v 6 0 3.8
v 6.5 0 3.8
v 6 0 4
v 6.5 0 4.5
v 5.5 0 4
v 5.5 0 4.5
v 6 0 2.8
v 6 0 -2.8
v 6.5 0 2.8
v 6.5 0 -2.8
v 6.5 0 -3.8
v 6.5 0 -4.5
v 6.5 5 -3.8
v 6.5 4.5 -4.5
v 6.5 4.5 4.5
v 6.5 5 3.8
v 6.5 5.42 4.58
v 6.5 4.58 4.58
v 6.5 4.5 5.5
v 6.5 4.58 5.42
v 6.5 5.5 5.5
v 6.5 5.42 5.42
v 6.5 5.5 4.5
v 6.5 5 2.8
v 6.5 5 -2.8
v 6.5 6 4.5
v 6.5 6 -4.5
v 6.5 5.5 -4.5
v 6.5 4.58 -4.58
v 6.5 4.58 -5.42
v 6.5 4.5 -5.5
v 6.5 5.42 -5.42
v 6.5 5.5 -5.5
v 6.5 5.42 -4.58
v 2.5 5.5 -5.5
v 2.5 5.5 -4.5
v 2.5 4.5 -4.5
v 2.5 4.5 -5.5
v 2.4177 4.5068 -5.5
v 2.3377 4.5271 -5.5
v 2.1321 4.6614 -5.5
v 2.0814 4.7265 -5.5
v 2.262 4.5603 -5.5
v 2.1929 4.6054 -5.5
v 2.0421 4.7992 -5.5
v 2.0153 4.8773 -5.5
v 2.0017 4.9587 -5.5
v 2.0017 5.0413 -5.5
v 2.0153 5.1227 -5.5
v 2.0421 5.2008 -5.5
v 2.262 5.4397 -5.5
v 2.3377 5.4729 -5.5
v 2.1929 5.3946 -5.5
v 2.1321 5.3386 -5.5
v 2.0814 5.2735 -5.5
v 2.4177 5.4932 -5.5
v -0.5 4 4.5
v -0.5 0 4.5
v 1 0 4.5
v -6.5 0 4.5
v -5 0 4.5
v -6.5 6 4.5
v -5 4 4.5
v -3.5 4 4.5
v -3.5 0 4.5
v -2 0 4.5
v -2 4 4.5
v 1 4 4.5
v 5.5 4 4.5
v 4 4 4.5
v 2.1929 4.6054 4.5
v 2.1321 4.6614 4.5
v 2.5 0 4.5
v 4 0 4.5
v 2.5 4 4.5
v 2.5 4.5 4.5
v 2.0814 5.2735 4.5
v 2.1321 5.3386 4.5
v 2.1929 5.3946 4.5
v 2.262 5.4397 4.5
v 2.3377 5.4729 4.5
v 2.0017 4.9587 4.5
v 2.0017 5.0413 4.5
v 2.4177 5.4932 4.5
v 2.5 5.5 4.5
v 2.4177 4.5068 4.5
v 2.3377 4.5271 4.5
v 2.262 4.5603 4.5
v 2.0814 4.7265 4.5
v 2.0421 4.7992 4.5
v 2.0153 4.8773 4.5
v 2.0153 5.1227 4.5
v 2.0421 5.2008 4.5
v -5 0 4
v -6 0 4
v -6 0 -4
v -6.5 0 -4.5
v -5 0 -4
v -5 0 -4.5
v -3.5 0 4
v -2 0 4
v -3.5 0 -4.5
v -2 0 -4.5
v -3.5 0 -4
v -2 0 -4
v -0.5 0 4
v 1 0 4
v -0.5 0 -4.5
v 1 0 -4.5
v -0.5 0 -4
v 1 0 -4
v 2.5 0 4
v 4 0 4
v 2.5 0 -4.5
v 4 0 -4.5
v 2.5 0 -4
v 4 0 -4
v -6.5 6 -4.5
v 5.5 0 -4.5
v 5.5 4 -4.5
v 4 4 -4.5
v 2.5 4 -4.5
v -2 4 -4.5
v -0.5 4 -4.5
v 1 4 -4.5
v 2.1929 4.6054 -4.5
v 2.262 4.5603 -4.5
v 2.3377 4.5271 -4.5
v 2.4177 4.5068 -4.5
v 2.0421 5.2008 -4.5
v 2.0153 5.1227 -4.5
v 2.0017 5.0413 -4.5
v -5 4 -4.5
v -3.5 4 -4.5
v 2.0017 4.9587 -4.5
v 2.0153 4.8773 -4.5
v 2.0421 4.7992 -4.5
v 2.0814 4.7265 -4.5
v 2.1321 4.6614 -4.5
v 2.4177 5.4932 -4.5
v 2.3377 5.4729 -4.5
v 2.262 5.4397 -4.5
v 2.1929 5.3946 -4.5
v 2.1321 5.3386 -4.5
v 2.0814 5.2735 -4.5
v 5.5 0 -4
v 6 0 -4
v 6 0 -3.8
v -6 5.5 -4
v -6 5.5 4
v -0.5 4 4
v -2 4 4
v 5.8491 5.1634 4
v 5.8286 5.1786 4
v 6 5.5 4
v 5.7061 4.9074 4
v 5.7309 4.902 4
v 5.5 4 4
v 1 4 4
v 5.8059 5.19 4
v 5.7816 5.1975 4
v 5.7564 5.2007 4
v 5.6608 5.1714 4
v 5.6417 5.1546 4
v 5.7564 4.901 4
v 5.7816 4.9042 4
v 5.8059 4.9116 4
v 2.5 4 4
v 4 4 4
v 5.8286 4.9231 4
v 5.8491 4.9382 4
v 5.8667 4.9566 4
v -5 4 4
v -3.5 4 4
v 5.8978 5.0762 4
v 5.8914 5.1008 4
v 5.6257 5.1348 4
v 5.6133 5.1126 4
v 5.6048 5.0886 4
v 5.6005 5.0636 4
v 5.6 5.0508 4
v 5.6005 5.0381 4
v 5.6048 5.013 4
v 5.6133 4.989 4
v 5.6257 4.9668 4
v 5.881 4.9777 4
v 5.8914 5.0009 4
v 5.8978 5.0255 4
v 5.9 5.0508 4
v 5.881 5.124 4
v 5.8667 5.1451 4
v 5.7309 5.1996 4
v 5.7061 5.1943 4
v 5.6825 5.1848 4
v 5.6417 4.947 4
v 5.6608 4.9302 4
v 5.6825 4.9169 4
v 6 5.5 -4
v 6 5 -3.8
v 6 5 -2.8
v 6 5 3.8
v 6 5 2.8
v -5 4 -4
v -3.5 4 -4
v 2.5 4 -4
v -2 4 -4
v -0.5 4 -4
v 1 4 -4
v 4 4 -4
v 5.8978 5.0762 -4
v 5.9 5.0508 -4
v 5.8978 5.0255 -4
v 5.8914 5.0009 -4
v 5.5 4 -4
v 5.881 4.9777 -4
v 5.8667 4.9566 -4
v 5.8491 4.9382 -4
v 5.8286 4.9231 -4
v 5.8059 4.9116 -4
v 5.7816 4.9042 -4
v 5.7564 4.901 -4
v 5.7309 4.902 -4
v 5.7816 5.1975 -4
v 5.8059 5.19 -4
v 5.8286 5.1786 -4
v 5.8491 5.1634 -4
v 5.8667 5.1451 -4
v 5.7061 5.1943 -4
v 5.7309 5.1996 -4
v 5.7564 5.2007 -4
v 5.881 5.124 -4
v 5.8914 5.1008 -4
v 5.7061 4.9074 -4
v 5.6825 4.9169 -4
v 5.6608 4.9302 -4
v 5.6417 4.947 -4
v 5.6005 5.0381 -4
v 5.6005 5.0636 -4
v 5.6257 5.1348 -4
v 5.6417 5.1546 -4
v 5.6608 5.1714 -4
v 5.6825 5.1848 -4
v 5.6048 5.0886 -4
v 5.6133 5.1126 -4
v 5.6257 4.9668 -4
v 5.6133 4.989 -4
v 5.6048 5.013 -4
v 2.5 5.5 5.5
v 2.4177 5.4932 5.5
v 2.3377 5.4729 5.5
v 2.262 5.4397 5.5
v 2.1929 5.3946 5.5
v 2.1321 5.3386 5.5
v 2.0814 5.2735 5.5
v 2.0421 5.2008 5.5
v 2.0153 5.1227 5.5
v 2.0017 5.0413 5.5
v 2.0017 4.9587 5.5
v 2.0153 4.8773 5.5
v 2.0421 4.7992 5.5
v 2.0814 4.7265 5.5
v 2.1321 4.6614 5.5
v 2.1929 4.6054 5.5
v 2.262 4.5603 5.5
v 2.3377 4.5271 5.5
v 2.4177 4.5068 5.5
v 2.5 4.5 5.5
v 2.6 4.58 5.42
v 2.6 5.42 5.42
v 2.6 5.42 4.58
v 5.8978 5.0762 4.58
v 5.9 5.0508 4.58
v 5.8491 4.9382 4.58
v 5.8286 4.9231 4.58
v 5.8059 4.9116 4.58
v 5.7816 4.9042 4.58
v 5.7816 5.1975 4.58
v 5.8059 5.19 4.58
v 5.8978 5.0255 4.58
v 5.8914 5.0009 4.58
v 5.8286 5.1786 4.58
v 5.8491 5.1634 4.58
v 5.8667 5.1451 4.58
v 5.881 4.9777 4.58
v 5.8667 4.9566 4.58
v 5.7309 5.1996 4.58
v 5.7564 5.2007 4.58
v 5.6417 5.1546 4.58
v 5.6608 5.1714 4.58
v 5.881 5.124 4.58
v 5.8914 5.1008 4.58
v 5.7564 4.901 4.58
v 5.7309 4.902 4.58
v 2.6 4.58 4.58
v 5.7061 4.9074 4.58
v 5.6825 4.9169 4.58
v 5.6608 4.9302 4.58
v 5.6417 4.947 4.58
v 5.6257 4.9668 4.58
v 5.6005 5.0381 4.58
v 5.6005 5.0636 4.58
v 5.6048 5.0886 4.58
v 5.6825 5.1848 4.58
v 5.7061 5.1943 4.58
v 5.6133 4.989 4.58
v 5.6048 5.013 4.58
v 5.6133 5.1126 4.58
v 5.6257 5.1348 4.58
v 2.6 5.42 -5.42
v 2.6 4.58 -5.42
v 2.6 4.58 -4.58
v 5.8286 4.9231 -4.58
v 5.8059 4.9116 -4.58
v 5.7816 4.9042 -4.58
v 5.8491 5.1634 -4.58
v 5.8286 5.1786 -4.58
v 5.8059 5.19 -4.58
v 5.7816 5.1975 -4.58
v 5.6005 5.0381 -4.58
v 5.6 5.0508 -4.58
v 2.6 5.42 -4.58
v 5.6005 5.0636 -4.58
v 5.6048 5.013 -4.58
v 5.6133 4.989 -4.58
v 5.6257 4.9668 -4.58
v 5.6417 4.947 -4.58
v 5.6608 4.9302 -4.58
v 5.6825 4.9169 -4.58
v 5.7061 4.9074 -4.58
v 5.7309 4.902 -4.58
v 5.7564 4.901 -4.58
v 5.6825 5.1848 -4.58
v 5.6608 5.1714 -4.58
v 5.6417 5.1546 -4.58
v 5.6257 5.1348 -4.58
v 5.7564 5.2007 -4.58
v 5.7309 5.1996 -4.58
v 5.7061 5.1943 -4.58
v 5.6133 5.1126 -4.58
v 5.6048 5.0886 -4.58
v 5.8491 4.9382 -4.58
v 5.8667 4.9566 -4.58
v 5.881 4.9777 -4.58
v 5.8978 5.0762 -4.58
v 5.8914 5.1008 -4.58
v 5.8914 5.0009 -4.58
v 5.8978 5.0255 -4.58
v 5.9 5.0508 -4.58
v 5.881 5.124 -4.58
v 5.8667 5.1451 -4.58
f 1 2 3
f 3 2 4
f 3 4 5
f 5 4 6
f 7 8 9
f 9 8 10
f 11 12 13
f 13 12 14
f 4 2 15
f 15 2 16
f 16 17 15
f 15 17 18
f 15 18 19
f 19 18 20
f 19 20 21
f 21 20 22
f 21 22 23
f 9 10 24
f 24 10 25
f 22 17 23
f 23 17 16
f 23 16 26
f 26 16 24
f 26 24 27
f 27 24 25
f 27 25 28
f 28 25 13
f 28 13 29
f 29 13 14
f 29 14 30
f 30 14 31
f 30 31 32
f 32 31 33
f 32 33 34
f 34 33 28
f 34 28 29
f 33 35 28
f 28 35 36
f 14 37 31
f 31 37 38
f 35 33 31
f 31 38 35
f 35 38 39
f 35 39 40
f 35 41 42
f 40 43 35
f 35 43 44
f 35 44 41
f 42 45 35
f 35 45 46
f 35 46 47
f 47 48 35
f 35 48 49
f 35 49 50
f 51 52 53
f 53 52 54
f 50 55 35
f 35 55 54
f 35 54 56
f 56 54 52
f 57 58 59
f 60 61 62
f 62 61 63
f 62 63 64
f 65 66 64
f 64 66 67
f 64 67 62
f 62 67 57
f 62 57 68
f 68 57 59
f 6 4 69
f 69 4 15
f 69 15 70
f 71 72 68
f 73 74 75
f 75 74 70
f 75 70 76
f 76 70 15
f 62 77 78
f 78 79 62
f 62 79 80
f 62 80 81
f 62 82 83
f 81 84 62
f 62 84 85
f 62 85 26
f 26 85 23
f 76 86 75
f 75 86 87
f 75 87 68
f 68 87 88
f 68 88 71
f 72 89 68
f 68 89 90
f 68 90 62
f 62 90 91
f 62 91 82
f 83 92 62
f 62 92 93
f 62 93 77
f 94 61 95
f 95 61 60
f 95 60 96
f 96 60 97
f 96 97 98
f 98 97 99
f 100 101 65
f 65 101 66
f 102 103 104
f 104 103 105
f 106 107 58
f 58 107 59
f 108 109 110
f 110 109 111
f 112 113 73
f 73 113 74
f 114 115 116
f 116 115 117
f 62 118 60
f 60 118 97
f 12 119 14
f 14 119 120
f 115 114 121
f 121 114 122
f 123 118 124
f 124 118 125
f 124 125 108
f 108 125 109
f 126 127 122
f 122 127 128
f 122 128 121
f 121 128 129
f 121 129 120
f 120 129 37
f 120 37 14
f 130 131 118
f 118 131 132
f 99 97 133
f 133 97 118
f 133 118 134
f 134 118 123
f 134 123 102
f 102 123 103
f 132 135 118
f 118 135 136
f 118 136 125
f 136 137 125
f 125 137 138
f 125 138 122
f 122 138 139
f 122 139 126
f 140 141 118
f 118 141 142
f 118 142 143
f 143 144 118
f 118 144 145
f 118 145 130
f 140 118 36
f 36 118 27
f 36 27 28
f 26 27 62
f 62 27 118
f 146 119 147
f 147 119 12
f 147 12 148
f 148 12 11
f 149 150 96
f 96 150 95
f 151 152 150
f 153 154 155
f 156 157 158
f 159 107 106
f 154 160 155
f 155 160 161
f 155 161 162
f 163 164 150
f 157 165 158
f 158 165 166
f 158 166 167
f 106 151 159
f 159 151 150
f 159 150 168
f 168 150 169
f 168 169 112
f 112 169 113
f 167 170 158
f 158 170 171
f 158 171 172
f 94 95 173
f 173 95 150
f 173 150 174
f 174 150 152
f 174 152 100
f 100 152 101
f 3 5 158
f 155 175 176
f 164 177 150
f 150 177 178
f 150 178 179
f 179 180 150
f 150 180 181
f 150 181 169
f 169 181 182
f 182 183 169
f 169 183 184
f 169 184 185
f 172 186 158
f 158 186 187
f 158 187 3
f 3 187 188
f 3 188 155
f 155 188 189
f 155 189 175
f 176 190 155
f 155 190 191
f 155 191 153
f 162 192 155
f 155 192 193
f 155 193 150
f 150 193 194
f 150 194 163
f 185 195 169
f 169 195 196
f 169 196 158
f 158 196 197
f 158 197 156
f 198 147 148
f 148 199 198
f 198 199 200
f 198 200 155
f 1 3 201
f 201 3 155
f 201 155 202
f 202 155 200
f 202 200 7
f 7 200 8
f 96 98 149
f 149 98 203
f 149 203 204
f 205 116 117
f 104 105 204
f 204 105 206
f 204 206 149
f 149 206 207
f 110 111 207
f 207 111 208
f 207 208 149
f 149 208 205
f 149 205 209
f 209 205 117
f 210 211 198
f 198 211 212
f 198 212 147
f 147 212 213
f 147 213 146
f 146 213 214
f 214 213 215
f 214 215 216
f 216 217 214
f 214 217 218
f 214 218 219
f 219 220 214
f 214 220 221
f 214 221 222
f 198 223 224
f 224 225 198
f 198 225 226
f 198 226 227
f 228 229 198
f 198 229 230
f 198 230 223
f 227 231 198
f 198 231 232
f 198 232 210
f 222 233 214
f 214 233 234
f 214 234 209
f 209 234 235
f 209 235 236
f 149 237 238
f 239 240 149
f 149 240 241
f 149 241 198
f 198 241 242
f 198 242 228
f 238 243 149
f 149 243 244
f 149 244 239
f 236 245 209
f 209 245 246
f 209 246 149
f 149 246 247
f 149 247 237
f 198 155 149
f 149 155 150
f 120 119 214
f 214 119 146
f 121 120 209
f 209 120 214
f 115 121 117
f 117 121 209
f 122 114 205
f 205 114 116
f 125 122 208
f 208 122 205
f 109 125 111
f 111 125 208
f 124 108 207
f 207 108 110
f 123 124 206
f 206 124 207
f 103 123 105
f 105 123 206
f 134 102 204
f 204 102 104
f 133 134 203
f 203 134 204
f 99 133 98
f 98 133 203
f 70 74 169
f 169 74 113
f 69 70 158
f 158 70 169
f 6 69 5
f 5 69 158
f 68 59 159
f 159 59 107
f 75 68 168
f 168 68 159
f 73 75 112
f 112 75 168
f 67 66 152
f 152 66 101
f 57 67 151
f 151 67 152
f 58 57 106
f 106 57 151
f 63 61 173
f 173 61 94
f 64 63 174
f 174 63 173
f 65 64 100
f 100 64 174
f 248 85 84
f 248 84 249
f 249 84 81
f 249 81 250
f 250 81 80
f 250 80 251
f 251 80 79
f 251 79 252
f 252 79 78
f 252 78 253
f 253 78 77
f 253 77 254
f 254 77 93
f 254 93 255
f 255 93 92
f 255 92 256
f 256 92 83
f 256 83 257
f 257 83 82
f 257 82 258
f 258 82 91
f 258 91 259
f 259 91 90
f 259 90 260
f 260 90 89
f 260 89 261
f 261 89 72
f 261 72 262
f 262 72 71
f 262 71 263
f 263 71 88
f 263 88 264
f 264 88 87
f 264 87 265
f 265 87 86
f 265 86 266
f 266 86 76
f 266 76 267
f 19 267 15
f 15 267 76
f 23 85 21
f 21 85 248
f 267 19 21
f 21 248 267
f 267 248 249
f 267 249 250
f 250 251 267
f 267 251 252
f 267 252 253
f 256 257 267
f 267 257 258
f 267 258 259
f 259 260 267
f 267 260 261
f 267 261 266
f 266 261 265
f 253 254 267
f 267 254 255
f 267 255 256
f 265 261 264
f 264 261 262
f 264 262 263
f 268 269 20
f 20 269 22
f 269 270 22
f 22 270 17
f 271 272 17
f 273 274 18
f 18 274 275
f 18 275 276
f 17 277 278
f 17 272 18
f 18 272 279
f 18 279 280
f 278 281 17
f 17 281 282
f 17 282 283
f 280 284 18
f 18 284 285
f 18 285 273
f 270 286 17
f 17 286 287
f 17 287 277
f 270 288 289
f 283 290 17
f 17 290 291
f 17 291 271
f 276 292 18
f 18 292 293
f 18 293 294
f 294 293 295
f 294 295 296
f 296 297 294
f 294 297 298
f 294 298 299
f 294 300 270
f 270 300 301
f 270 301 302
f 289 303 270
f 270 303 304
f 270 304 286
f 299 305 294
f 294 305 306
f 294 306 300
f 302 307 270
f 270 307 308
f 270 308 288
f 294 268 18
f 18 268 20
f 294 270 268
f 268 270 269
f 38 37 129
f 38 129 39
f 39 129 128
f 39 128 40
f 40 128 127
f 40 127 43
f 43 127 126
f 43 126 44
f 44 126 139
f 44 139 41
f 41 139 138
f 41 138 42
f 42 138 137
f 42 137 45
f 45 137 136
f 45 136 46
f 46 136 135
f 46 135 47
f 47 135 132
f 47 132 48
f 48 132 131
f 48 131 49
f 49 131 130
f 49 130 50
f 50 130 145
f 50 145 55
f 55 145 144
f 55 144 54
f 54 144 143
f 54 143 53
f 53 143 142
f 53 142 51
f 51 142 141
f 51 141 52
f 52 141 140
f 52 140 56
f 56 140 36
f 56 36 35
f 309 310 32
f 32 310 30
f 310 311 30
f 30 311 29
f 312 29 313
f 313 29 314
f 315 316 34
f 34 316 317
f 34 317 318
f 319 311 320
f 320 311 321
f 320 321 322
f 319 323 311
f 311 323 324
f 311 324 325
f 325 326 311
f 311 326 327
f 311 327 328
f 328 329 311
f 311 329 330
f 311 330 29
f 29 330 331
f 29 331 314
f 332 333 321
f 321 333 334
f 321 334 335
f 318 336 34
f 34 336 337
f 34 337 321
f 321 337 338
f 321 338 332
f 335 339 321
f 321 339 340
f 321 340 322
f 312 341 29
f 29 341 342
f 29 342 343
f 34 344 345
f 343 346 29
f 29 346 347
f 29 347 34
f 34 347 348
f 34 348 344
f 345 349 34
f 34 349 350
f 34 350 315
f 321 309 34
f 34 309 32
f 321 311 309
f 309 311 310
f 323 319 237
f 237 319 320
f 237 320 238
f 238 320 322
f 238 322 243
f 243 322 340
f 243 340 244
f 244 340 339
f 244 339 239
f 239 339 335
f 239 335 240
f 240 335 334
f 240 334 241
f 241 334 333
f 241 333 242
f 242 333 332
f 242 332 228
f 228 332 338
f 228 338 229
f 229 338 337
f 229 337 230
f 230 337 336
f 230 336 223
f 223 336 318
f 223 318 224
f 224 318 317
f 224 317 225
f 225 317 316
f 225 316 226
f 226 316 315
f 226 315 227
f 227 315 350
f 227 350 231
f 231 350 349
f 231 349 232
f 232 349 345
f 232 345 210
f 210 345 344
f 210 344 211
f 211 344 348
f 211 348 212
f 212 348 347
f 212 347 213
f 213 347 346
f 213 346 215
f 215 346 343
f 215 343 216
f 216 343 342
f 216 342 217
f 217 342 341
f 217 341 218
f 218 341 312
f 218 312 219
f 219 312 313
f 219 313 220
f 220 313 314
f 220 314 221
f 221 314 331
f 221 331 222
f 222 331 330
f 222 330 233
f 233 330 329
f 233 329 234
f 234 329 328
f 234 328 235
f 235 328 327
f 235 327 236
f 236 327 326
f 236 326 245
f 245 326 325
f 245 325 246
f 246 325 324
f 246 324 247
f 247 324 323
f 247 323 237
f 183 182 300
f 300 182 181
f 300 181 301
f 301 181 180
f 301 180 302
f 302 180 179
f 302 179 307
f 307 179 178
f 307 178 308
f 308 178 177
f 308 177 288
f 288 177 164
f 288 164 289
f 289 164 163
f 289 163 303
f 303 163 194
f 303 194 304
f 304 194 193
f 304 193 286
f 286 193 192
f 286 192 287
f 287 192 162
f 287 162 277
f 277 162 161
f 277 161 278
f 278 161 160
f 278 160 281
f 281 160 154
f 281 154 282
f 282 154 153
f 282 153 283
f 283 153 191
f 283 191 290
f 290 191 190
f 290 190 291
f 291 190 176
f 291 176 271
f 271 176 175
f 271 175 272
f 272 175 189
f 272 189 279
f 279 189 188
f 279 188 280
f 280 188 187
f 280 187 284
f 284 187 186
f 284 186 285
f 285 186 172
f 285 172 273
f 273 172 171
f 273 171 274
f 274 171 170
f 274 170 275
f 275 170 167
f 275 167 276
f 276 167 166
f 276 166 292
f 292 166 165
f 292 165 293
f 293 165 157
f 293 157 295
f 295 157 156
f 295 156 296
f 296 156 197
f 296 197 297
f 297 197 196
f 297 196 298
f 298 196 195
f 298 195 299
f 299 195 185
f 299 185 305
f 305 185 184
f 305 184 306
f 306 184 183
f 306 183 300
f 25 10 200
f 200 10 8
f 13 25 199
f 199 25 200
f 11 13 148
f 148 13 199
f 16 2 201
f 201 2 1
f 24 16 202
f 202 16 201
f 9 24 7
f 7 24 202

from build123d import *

# Parameters (mm, degrees)
SKETCH1_W           = 13
SKETCH1_H           = 9
BOSS_EXTRUDE1_DEPTH = 6
SHELL9_START        = -6
SHELL9_OUTLINE_W    = 5.5
SHELL9_OUTLINE_H    = 8
SHELL9_DEPTH        = 12
SKETCH2_W           = 1.5
SKETCH2_H           = 4
CUT_EXTRUDE2_DEPTH  = 13.619429464
BOSS_EXTRUDE2_DEPTH = 1
CUT_EXTRUDE3_DEPTH  = 1
SKETCH6_W           = 0.84
SKETCH6_H           = 0.84
CUT_EXTRUDE4_DEPTH  = 3.9
SKETCH7_R           = 0.15
CUT_EXTRUDE6_DEPTH  = 9.9
SKETCH9_W           = 1
SKETCH9_H           = 5
CUT_EXTRUDE7_DEPTH  = 0.8


# Read off the part's stored shape, not the designer's step: Shell9
with BuildPart() as part:
    # Sketch1 → Boss-Extrude1 (new body)
    with BuildSketch(Plane(origin=(0, 0, 0), x_dir=(1, 0, 0), z_dir=(0, 1, 0))):
        Rectangle(SKETCH1_W, SKETCH1_H)
    extrude(amount=BOSS_EXTRUDE1_DEPTH)

    # Shell9 outline → Shell9 (cut)
    with BuildSketch(Plane.YZ.offset(SHELL9_START)):
        with Locations((2.75, 0)):
            Rectangle(SHELL9_OUTLINE_W, SHELL9_OUTLINE_H)
    extrude(amount=SHELL9_DEPTH, mode=Mode.SUBTRACT)

    # Sketch2 → Cut-Extrude2 (cut, through all)
    with BuildSketch(Plane.XY.offset(4.5)):
        with Locations((-1.25, 2)):
            Rectangle(SKETCH2_W, SKETCH2_H)
        with Locations((-4.25, 2)):
            Rectangle(SKETCH2_W, SKETCH2_H)
        with Locations((1.75, 2)):
            Rectangle(SKETCH2_W, SKETCH2_H)
        with Locations((4.75, 2)):
            Rectangle(SKETCH2_W, SKETCH2_H)
    extrude(amount=-CUT_EXTRUDE2_DEPTH, mode=Mode.SUBTRACT)

    # Sketch3 → Boss-Extrude2 (add)
    with BuildSketch(Plane.XY.offset(4.5)):
        with BuildLine():
            Line((2.5, 4.5), (10.5, 4.5))
            ThreePointArc((10.5, 4.5), (11, 5), (10.5, 5.5))
            Line((10.5, 5.5), (2.5, 5.5))
            ThreePointArc((2.5, 5.5), (2, 5), (2.5, 4.5))
        make_face()
    boss_extrude2 = extrude(amount=BOSS_EXTRUDE2_DEPTH)

    # Sketch5 → Cut-Extrude3 (cut)
    with BuildSketch(Plane(origin=(0, 0, 4.5), x_dir=(-1, 0, 0), z_dir=(0, 0, -1))):
        with BuildLine():
            Line((-10.5, 5.5), (-6.5, 5.5))
            Line((-6.5, 5.5), (-6.5, 4.5))
            Line((-6.5, 4.5), (-10.5, 4.5))
            ThreePointArc((-10.5, 4.5), (-11, 5), (-10.5, 5.5))
        make_face()
    cut_extrude3 = extrude(amount=-CUT_EXTRUDE3_DEPTH, mode=Mode.SUBTRACT)

    # Sketch6 → Cut-Extrude4 (cut)
    with BuildSketch(Plane(origin=(6.5, 0, 0), x_dir=(0, 0, -1), z_dir=(1, 0, 0))):
        with Locations((-5, 5)):
            Rectangle(SKETCH6_W, SKETCH6_H)
    cut_extrude4 = extrude(amount=-CUT_EXTRUDE4_DEPTH, mode=Mode.SUBTRACT)

    # Mirror1: Boss-Extrude2, Cut-Extrude3, Cut-Extrude4 across plane
    add(boss_extrude2.mirror(Plane.XY))
    add(cut_extrude3.mirror(Plane.XY), mode=Mode.SUBTRACT)
    add(cut_extrude4.mirror(Plane.XY), mode=Mode.SUBTRACT)

    # Sketch7 → Cut-Extrude6 (cut)
    with BuildSketch(Plane.XY.offset(4.58)):
        with Locations((5.75, 5.050831707)):
            Circle(SKETCH7_R)
    extrude(amount=-CUT_EXTRUDE6_DEPTH, mode=Mode.SUBTRACT)

    # Sketch9 → Cut-Extrude7 (cut)
    with BuildSketch(Plane(origin=(6.5, 0, 0), x_dir=(0, 0, -1), z_dir=(1, 0, 0))):
        with Locations((-3.3, 2.5)):
            Rectangle(SKETCH9_W, SKETCH9_H)
        with Locations((3.3, 2.5)):
            Rectangle(SKETCH9_W, SKETCH9_H)
    extrude(amount=-CUT_EXTRUDE7_DEPTH, mode=Mode.SUBTRACT)


solid = part.part
